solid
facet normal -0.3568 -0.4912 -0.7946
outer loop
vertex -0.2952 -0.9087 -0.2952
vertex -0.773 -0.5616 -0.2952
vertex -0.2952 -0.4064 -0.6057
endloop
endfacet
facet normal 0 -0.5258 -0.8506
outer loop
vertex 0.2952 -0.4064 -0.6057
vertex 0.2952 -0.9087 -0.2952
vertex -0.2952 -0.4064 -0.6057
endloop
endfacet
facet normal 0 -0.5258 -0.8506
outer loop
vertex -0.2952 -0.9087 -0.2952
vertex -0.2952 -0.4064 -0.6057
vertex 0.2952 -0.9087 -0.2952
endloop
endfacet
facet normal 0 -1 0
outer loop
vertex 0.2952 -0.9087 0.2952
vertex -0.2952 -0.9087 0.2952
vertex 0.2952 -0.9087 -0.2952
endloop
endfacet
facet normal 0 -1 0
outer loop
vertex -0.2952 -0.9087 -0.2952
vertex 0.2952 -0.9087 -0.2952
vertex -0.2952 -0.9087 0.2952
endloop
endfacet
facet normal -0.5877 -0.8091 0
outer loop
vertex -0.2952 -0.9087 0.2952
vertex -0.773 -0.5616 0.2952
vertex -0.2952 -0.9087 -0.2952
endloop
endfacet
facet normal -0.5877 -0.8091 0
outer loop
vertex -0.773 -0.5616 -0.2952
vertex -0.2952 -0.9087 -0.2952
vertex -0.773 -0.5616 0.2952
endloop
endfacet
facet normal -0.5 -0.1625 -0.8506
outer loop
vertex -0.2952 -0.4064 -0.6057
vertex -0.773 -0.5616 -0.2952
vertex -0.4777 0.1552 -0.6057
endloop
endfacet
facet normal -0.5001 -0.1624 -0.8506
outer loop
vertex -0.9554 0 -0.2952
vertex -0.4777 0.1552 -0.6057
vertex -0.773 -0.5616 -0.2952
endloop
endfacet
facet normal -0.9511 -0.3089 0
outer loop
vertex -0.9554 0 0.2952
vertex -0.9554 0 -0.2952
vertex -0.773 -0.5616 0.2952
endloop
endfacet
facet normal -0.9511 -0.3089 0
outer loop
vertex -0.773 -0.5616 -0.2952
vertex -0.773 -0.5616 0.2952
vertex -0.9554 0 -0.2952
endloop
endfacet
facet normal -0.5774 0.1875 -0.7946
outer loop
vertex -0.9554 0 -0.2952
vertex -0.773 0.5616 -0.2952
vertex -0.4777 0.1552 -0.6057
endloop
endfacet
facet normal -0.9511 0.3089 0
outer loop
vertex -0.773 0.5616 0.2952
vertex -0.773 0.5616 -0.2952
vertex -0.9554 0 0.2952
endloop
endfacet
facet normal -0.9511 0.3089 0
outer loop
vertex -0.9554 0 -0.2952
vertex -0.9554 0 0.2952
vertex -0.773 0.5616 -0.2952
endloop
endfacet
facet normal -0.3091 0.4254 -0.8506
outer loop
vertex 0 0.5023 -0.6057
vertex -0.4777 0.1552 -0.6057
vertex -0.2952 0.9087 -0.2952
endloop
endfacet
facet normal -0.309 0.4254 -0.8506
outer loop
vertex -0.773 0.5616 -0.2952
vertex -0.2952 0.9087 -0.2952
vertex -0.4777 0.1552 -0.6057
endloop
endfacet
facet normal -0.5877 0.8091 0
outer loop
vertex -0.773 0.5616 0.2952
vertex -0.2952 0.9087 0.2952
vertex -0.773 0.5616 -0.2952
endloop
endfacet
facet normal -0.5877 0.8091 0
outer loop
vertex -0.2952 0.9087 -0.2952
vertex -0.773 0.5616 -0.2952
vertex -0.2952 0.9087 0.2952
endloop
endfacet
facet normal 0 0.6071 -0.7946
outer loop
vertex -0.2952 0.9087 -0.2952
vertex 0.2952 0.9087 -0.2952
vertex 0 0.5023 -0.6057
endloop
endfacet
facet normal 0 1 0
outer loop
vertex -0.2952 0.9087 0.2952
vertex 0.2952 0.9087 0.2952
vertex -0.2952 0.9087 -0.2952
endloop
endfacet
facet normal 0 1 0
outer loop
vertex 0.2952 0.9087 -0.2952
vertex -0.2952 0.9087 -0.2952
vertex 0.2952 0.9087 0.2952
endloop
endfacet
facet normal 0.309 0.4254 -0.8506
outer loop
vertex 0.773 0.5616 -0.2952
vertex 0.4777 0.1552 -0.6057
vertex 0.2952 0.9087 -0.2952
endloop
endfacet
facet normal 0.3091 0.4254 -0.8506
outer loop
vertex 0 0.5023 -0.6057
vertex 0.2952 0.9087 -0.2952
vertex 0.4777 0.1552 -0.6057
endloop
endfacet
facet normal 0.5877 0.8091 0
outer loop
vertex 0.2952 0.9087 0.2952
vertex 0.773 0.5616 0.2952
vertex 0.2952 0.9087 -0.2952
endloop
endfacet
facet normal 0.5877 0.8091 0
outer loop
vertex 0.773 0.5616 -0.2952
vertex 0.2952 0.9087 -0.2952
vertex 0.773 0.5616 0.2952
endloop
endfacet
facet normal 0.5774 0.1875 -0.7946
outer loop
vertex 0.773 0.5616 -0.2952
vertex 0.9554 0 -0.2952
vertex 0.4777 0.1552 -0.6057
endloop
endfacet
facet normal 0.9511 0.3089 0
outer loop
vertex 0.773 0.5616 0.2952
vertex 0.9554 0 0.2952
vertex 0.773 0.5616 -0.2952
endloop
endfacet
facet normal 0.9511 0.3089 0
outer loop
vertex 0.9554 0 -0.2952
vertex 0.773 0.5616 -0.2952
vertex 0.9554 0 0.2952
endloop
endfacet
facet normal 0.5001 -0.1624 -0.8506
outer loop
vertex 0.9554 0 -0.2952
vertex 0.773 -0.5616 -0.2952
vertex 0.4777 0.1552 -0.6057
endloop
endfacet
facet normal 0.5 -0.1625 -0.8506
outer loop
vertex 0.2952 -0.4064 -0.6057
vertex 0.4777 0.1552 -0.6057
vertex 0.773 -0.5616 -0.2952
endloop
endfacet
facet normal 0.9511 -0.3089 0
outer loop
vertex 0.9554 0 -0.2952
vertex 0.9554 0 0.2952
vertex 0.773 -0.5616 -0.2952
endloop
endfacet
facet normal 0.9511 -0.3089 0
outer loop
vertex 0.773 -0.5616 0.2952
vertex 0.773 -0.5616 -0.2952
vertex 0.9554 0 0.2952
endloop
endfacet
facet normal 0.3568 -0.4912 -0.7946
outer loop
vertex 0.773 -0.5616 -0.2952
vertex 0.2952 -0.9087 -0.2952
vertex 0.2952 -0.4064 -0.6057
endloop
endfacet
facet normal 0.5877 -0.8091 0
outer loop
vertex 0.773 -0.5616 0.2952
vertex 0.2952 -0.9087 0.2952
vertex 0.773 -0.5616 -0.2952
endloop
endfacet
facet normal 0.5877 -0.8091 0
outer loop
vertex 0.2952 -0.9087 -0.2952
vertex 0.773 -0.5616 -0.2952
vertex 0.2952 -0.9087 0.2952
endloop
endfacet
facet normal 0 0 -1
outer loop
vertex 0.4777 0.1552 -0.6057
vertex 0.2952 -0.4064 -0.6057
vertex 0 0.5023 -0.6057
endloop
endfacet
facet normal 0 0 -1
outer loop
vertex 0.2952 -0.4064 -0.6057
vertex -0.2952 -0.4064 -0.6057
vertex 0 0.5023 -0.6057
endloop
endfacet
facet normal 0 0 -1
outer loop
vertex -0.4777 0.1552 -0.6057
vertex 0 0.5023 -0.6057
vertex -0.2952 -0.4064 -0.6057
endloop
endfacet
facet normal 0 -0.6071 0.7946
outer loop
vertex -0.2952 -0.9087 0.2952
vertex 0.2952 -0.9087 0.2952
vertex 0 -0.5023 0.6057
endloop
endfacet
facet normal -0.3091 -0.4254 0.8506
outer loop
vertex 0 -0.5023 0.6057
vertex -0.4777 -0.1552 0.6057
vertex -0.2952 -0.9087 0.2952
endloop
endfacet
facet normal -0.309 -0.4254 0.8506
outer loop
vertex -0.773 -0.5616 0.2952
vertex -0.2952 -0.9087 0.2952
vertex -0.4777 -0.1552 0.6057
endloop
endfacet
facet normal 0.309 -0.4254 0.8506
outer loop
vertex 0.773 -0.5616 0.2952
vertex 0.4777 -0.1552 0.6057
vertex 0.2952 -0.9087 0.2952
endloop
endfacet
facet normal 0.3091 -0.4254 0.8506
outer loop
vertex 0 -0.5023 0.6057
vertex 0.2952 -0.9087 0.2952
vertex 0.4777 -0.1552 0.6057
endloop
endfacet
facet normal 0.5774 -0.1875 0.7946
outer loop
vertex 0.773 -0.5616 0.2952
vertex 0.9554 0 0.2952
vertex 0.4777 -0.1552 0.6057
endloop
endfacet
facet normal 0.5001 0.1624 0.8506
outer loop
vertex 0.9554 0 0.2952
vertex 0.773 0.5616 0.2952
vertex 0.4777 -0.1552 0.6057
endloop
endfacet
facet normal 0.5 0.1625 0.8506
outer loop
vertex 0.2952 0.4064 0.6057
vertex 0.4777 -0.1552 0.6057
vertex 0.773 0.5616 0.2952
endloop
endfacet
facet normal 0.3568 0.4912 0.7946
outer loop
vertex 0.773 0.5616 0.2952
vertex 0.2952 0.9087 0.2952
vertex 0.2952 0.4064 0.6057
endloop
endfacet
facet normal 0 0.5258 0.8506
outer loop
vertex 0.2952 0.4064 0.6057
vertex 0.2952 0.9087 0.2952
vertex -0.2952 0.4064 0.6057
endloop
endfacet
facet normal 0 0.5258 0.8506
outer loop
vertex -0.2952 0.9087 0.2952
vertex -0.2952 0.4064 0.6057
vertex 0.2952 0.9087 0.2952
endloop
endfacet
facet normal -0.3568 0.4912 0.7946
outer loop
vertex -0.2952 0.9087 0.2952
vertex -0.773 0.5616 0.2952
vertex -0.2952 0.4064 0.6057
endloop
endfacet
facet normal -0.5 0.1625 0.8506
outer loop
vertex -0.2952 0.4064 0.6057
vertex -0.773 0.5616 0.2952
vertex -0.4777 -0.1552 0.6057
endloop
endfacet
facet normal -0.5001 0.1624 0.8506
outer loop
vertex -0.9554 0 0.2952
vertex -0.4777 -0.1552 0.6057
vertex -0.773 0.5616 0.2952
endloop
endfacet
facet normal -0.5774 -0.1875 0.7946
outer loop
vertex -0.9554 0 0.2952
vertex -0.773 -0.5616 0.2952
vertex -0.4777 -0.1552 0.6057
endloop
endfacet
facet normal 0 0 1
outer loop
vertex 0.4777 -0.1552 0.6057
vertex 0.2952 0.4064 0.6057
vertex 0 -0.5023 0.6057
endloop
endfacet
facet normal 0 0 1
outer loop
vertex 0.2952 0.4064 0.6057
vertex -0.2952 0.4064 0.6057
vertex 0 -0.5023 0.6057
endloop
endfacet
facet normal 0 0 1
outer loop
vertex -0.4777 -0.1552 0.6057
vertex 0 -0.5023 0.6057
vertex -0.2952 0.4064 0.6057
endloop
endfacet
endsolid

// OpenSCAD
polyhedron( points = [[-0.295241808139989, -0.908660854499669, -0.295241808601655], [-0.772953089648922, -0.561583292323058, -0.295241808601655], [-0.9554225626817, -3.4539675739688e-11, -0.295241808601655], [-0.772953090452936, 0.561583292237591, -0.295241808601655], [-0.295241809440912, 0.908660854371305, -0.295241808601655], [0.295241807827116, 0.908660854371311, -0.295241808601655], [0.772953089367212, 0.561583292237591, -0.295241808601655], [0.955422562450418, -3.4539675739688e-11, -0.295241808601655], [0.772953090272086, -0.561583292323055, -0.295241808601655], [0.295241809291224, -0.908660854499669, -0.295241808601655], [-0.295241808113479, -0.406365487335554, -0.605677417035585], [-0.477711280750864, 0.155217804196079, -0.605677417360634], [6.36025518844092e-10, 0.502295366130706, -0.605677417360634], [0.477711281939432, 0.155217804081177, -0.605677417360635], [0.295241809120336, -0.406365487458368, -0.605677416959682], [-0.295241808113479, -0.908660854418077, 0.295241808829558], [0.295241809262653, -0.908660854418077, 0.295241808721456], [0.772953090175838, -0.561583292257046, 0.295241808573055], [0.95542256229975, 6.25687695153475e-12, 0.295241808441041], [0.772953089196172, 0.561583292253174, 0.295241808375837], [0.29524180767752, 0.908660854371311, 0.29524180840235], [-0.295241809535428, 0.908660854371305, 0.295241808510452], [-0.772953090479776, 0.561583292253174, 0.295241808658853], [-0.955422562654119, 6.25097683496512e-12, 0.295241808790867], [-0.772953089600964, -0.561583292257049, 0.295241808856071], [6.1966259444785e-10, -0.502295366043563, 0.605677417095186], [0.477711281195305, -0.155217804401271, 0.605677417271835], [0.295241808098646, 0.406365487766108, 0.605677417206634], [-0.295241809036515, 0.406365487748116, 0.605677417314733], [-0.477711280780312, -0.155217804097922, 0.605677417045798]], faces = [[0, 1, 10], [0, 10, 14, 9], [0, 9, 16, 15], [0, 15, 24, 1], [1, 2, 11, 10], [1, 24, 23, 2], [2, 3, 11], [2, 23, 22, 3], [3, 4, 12, 11], [3, 22, 21, 4], [4, 5, 12], [4, 21, 20, 5], [5, 6, 13, 12], [5, 20, 19, 6], [6, 7, 13], [6, 19, 18, 7], [7, 8, 14, 13], [7, 18, 17, 8], [8, 9, 14], [8, 17, 16, 9], [10, 11, 12, 13, 14], [15, 16, 25], [15, 25, 29, 24], [16, 17, 26, 25], [17, 18, 26], [18, 19, 27, 26], [19, 20, 27], [20, 21, 28, 27], [21, 22, 28], [22, 23, 29, 28], [23, 24, 29], [25, 26, 27, 28, 29]]);
